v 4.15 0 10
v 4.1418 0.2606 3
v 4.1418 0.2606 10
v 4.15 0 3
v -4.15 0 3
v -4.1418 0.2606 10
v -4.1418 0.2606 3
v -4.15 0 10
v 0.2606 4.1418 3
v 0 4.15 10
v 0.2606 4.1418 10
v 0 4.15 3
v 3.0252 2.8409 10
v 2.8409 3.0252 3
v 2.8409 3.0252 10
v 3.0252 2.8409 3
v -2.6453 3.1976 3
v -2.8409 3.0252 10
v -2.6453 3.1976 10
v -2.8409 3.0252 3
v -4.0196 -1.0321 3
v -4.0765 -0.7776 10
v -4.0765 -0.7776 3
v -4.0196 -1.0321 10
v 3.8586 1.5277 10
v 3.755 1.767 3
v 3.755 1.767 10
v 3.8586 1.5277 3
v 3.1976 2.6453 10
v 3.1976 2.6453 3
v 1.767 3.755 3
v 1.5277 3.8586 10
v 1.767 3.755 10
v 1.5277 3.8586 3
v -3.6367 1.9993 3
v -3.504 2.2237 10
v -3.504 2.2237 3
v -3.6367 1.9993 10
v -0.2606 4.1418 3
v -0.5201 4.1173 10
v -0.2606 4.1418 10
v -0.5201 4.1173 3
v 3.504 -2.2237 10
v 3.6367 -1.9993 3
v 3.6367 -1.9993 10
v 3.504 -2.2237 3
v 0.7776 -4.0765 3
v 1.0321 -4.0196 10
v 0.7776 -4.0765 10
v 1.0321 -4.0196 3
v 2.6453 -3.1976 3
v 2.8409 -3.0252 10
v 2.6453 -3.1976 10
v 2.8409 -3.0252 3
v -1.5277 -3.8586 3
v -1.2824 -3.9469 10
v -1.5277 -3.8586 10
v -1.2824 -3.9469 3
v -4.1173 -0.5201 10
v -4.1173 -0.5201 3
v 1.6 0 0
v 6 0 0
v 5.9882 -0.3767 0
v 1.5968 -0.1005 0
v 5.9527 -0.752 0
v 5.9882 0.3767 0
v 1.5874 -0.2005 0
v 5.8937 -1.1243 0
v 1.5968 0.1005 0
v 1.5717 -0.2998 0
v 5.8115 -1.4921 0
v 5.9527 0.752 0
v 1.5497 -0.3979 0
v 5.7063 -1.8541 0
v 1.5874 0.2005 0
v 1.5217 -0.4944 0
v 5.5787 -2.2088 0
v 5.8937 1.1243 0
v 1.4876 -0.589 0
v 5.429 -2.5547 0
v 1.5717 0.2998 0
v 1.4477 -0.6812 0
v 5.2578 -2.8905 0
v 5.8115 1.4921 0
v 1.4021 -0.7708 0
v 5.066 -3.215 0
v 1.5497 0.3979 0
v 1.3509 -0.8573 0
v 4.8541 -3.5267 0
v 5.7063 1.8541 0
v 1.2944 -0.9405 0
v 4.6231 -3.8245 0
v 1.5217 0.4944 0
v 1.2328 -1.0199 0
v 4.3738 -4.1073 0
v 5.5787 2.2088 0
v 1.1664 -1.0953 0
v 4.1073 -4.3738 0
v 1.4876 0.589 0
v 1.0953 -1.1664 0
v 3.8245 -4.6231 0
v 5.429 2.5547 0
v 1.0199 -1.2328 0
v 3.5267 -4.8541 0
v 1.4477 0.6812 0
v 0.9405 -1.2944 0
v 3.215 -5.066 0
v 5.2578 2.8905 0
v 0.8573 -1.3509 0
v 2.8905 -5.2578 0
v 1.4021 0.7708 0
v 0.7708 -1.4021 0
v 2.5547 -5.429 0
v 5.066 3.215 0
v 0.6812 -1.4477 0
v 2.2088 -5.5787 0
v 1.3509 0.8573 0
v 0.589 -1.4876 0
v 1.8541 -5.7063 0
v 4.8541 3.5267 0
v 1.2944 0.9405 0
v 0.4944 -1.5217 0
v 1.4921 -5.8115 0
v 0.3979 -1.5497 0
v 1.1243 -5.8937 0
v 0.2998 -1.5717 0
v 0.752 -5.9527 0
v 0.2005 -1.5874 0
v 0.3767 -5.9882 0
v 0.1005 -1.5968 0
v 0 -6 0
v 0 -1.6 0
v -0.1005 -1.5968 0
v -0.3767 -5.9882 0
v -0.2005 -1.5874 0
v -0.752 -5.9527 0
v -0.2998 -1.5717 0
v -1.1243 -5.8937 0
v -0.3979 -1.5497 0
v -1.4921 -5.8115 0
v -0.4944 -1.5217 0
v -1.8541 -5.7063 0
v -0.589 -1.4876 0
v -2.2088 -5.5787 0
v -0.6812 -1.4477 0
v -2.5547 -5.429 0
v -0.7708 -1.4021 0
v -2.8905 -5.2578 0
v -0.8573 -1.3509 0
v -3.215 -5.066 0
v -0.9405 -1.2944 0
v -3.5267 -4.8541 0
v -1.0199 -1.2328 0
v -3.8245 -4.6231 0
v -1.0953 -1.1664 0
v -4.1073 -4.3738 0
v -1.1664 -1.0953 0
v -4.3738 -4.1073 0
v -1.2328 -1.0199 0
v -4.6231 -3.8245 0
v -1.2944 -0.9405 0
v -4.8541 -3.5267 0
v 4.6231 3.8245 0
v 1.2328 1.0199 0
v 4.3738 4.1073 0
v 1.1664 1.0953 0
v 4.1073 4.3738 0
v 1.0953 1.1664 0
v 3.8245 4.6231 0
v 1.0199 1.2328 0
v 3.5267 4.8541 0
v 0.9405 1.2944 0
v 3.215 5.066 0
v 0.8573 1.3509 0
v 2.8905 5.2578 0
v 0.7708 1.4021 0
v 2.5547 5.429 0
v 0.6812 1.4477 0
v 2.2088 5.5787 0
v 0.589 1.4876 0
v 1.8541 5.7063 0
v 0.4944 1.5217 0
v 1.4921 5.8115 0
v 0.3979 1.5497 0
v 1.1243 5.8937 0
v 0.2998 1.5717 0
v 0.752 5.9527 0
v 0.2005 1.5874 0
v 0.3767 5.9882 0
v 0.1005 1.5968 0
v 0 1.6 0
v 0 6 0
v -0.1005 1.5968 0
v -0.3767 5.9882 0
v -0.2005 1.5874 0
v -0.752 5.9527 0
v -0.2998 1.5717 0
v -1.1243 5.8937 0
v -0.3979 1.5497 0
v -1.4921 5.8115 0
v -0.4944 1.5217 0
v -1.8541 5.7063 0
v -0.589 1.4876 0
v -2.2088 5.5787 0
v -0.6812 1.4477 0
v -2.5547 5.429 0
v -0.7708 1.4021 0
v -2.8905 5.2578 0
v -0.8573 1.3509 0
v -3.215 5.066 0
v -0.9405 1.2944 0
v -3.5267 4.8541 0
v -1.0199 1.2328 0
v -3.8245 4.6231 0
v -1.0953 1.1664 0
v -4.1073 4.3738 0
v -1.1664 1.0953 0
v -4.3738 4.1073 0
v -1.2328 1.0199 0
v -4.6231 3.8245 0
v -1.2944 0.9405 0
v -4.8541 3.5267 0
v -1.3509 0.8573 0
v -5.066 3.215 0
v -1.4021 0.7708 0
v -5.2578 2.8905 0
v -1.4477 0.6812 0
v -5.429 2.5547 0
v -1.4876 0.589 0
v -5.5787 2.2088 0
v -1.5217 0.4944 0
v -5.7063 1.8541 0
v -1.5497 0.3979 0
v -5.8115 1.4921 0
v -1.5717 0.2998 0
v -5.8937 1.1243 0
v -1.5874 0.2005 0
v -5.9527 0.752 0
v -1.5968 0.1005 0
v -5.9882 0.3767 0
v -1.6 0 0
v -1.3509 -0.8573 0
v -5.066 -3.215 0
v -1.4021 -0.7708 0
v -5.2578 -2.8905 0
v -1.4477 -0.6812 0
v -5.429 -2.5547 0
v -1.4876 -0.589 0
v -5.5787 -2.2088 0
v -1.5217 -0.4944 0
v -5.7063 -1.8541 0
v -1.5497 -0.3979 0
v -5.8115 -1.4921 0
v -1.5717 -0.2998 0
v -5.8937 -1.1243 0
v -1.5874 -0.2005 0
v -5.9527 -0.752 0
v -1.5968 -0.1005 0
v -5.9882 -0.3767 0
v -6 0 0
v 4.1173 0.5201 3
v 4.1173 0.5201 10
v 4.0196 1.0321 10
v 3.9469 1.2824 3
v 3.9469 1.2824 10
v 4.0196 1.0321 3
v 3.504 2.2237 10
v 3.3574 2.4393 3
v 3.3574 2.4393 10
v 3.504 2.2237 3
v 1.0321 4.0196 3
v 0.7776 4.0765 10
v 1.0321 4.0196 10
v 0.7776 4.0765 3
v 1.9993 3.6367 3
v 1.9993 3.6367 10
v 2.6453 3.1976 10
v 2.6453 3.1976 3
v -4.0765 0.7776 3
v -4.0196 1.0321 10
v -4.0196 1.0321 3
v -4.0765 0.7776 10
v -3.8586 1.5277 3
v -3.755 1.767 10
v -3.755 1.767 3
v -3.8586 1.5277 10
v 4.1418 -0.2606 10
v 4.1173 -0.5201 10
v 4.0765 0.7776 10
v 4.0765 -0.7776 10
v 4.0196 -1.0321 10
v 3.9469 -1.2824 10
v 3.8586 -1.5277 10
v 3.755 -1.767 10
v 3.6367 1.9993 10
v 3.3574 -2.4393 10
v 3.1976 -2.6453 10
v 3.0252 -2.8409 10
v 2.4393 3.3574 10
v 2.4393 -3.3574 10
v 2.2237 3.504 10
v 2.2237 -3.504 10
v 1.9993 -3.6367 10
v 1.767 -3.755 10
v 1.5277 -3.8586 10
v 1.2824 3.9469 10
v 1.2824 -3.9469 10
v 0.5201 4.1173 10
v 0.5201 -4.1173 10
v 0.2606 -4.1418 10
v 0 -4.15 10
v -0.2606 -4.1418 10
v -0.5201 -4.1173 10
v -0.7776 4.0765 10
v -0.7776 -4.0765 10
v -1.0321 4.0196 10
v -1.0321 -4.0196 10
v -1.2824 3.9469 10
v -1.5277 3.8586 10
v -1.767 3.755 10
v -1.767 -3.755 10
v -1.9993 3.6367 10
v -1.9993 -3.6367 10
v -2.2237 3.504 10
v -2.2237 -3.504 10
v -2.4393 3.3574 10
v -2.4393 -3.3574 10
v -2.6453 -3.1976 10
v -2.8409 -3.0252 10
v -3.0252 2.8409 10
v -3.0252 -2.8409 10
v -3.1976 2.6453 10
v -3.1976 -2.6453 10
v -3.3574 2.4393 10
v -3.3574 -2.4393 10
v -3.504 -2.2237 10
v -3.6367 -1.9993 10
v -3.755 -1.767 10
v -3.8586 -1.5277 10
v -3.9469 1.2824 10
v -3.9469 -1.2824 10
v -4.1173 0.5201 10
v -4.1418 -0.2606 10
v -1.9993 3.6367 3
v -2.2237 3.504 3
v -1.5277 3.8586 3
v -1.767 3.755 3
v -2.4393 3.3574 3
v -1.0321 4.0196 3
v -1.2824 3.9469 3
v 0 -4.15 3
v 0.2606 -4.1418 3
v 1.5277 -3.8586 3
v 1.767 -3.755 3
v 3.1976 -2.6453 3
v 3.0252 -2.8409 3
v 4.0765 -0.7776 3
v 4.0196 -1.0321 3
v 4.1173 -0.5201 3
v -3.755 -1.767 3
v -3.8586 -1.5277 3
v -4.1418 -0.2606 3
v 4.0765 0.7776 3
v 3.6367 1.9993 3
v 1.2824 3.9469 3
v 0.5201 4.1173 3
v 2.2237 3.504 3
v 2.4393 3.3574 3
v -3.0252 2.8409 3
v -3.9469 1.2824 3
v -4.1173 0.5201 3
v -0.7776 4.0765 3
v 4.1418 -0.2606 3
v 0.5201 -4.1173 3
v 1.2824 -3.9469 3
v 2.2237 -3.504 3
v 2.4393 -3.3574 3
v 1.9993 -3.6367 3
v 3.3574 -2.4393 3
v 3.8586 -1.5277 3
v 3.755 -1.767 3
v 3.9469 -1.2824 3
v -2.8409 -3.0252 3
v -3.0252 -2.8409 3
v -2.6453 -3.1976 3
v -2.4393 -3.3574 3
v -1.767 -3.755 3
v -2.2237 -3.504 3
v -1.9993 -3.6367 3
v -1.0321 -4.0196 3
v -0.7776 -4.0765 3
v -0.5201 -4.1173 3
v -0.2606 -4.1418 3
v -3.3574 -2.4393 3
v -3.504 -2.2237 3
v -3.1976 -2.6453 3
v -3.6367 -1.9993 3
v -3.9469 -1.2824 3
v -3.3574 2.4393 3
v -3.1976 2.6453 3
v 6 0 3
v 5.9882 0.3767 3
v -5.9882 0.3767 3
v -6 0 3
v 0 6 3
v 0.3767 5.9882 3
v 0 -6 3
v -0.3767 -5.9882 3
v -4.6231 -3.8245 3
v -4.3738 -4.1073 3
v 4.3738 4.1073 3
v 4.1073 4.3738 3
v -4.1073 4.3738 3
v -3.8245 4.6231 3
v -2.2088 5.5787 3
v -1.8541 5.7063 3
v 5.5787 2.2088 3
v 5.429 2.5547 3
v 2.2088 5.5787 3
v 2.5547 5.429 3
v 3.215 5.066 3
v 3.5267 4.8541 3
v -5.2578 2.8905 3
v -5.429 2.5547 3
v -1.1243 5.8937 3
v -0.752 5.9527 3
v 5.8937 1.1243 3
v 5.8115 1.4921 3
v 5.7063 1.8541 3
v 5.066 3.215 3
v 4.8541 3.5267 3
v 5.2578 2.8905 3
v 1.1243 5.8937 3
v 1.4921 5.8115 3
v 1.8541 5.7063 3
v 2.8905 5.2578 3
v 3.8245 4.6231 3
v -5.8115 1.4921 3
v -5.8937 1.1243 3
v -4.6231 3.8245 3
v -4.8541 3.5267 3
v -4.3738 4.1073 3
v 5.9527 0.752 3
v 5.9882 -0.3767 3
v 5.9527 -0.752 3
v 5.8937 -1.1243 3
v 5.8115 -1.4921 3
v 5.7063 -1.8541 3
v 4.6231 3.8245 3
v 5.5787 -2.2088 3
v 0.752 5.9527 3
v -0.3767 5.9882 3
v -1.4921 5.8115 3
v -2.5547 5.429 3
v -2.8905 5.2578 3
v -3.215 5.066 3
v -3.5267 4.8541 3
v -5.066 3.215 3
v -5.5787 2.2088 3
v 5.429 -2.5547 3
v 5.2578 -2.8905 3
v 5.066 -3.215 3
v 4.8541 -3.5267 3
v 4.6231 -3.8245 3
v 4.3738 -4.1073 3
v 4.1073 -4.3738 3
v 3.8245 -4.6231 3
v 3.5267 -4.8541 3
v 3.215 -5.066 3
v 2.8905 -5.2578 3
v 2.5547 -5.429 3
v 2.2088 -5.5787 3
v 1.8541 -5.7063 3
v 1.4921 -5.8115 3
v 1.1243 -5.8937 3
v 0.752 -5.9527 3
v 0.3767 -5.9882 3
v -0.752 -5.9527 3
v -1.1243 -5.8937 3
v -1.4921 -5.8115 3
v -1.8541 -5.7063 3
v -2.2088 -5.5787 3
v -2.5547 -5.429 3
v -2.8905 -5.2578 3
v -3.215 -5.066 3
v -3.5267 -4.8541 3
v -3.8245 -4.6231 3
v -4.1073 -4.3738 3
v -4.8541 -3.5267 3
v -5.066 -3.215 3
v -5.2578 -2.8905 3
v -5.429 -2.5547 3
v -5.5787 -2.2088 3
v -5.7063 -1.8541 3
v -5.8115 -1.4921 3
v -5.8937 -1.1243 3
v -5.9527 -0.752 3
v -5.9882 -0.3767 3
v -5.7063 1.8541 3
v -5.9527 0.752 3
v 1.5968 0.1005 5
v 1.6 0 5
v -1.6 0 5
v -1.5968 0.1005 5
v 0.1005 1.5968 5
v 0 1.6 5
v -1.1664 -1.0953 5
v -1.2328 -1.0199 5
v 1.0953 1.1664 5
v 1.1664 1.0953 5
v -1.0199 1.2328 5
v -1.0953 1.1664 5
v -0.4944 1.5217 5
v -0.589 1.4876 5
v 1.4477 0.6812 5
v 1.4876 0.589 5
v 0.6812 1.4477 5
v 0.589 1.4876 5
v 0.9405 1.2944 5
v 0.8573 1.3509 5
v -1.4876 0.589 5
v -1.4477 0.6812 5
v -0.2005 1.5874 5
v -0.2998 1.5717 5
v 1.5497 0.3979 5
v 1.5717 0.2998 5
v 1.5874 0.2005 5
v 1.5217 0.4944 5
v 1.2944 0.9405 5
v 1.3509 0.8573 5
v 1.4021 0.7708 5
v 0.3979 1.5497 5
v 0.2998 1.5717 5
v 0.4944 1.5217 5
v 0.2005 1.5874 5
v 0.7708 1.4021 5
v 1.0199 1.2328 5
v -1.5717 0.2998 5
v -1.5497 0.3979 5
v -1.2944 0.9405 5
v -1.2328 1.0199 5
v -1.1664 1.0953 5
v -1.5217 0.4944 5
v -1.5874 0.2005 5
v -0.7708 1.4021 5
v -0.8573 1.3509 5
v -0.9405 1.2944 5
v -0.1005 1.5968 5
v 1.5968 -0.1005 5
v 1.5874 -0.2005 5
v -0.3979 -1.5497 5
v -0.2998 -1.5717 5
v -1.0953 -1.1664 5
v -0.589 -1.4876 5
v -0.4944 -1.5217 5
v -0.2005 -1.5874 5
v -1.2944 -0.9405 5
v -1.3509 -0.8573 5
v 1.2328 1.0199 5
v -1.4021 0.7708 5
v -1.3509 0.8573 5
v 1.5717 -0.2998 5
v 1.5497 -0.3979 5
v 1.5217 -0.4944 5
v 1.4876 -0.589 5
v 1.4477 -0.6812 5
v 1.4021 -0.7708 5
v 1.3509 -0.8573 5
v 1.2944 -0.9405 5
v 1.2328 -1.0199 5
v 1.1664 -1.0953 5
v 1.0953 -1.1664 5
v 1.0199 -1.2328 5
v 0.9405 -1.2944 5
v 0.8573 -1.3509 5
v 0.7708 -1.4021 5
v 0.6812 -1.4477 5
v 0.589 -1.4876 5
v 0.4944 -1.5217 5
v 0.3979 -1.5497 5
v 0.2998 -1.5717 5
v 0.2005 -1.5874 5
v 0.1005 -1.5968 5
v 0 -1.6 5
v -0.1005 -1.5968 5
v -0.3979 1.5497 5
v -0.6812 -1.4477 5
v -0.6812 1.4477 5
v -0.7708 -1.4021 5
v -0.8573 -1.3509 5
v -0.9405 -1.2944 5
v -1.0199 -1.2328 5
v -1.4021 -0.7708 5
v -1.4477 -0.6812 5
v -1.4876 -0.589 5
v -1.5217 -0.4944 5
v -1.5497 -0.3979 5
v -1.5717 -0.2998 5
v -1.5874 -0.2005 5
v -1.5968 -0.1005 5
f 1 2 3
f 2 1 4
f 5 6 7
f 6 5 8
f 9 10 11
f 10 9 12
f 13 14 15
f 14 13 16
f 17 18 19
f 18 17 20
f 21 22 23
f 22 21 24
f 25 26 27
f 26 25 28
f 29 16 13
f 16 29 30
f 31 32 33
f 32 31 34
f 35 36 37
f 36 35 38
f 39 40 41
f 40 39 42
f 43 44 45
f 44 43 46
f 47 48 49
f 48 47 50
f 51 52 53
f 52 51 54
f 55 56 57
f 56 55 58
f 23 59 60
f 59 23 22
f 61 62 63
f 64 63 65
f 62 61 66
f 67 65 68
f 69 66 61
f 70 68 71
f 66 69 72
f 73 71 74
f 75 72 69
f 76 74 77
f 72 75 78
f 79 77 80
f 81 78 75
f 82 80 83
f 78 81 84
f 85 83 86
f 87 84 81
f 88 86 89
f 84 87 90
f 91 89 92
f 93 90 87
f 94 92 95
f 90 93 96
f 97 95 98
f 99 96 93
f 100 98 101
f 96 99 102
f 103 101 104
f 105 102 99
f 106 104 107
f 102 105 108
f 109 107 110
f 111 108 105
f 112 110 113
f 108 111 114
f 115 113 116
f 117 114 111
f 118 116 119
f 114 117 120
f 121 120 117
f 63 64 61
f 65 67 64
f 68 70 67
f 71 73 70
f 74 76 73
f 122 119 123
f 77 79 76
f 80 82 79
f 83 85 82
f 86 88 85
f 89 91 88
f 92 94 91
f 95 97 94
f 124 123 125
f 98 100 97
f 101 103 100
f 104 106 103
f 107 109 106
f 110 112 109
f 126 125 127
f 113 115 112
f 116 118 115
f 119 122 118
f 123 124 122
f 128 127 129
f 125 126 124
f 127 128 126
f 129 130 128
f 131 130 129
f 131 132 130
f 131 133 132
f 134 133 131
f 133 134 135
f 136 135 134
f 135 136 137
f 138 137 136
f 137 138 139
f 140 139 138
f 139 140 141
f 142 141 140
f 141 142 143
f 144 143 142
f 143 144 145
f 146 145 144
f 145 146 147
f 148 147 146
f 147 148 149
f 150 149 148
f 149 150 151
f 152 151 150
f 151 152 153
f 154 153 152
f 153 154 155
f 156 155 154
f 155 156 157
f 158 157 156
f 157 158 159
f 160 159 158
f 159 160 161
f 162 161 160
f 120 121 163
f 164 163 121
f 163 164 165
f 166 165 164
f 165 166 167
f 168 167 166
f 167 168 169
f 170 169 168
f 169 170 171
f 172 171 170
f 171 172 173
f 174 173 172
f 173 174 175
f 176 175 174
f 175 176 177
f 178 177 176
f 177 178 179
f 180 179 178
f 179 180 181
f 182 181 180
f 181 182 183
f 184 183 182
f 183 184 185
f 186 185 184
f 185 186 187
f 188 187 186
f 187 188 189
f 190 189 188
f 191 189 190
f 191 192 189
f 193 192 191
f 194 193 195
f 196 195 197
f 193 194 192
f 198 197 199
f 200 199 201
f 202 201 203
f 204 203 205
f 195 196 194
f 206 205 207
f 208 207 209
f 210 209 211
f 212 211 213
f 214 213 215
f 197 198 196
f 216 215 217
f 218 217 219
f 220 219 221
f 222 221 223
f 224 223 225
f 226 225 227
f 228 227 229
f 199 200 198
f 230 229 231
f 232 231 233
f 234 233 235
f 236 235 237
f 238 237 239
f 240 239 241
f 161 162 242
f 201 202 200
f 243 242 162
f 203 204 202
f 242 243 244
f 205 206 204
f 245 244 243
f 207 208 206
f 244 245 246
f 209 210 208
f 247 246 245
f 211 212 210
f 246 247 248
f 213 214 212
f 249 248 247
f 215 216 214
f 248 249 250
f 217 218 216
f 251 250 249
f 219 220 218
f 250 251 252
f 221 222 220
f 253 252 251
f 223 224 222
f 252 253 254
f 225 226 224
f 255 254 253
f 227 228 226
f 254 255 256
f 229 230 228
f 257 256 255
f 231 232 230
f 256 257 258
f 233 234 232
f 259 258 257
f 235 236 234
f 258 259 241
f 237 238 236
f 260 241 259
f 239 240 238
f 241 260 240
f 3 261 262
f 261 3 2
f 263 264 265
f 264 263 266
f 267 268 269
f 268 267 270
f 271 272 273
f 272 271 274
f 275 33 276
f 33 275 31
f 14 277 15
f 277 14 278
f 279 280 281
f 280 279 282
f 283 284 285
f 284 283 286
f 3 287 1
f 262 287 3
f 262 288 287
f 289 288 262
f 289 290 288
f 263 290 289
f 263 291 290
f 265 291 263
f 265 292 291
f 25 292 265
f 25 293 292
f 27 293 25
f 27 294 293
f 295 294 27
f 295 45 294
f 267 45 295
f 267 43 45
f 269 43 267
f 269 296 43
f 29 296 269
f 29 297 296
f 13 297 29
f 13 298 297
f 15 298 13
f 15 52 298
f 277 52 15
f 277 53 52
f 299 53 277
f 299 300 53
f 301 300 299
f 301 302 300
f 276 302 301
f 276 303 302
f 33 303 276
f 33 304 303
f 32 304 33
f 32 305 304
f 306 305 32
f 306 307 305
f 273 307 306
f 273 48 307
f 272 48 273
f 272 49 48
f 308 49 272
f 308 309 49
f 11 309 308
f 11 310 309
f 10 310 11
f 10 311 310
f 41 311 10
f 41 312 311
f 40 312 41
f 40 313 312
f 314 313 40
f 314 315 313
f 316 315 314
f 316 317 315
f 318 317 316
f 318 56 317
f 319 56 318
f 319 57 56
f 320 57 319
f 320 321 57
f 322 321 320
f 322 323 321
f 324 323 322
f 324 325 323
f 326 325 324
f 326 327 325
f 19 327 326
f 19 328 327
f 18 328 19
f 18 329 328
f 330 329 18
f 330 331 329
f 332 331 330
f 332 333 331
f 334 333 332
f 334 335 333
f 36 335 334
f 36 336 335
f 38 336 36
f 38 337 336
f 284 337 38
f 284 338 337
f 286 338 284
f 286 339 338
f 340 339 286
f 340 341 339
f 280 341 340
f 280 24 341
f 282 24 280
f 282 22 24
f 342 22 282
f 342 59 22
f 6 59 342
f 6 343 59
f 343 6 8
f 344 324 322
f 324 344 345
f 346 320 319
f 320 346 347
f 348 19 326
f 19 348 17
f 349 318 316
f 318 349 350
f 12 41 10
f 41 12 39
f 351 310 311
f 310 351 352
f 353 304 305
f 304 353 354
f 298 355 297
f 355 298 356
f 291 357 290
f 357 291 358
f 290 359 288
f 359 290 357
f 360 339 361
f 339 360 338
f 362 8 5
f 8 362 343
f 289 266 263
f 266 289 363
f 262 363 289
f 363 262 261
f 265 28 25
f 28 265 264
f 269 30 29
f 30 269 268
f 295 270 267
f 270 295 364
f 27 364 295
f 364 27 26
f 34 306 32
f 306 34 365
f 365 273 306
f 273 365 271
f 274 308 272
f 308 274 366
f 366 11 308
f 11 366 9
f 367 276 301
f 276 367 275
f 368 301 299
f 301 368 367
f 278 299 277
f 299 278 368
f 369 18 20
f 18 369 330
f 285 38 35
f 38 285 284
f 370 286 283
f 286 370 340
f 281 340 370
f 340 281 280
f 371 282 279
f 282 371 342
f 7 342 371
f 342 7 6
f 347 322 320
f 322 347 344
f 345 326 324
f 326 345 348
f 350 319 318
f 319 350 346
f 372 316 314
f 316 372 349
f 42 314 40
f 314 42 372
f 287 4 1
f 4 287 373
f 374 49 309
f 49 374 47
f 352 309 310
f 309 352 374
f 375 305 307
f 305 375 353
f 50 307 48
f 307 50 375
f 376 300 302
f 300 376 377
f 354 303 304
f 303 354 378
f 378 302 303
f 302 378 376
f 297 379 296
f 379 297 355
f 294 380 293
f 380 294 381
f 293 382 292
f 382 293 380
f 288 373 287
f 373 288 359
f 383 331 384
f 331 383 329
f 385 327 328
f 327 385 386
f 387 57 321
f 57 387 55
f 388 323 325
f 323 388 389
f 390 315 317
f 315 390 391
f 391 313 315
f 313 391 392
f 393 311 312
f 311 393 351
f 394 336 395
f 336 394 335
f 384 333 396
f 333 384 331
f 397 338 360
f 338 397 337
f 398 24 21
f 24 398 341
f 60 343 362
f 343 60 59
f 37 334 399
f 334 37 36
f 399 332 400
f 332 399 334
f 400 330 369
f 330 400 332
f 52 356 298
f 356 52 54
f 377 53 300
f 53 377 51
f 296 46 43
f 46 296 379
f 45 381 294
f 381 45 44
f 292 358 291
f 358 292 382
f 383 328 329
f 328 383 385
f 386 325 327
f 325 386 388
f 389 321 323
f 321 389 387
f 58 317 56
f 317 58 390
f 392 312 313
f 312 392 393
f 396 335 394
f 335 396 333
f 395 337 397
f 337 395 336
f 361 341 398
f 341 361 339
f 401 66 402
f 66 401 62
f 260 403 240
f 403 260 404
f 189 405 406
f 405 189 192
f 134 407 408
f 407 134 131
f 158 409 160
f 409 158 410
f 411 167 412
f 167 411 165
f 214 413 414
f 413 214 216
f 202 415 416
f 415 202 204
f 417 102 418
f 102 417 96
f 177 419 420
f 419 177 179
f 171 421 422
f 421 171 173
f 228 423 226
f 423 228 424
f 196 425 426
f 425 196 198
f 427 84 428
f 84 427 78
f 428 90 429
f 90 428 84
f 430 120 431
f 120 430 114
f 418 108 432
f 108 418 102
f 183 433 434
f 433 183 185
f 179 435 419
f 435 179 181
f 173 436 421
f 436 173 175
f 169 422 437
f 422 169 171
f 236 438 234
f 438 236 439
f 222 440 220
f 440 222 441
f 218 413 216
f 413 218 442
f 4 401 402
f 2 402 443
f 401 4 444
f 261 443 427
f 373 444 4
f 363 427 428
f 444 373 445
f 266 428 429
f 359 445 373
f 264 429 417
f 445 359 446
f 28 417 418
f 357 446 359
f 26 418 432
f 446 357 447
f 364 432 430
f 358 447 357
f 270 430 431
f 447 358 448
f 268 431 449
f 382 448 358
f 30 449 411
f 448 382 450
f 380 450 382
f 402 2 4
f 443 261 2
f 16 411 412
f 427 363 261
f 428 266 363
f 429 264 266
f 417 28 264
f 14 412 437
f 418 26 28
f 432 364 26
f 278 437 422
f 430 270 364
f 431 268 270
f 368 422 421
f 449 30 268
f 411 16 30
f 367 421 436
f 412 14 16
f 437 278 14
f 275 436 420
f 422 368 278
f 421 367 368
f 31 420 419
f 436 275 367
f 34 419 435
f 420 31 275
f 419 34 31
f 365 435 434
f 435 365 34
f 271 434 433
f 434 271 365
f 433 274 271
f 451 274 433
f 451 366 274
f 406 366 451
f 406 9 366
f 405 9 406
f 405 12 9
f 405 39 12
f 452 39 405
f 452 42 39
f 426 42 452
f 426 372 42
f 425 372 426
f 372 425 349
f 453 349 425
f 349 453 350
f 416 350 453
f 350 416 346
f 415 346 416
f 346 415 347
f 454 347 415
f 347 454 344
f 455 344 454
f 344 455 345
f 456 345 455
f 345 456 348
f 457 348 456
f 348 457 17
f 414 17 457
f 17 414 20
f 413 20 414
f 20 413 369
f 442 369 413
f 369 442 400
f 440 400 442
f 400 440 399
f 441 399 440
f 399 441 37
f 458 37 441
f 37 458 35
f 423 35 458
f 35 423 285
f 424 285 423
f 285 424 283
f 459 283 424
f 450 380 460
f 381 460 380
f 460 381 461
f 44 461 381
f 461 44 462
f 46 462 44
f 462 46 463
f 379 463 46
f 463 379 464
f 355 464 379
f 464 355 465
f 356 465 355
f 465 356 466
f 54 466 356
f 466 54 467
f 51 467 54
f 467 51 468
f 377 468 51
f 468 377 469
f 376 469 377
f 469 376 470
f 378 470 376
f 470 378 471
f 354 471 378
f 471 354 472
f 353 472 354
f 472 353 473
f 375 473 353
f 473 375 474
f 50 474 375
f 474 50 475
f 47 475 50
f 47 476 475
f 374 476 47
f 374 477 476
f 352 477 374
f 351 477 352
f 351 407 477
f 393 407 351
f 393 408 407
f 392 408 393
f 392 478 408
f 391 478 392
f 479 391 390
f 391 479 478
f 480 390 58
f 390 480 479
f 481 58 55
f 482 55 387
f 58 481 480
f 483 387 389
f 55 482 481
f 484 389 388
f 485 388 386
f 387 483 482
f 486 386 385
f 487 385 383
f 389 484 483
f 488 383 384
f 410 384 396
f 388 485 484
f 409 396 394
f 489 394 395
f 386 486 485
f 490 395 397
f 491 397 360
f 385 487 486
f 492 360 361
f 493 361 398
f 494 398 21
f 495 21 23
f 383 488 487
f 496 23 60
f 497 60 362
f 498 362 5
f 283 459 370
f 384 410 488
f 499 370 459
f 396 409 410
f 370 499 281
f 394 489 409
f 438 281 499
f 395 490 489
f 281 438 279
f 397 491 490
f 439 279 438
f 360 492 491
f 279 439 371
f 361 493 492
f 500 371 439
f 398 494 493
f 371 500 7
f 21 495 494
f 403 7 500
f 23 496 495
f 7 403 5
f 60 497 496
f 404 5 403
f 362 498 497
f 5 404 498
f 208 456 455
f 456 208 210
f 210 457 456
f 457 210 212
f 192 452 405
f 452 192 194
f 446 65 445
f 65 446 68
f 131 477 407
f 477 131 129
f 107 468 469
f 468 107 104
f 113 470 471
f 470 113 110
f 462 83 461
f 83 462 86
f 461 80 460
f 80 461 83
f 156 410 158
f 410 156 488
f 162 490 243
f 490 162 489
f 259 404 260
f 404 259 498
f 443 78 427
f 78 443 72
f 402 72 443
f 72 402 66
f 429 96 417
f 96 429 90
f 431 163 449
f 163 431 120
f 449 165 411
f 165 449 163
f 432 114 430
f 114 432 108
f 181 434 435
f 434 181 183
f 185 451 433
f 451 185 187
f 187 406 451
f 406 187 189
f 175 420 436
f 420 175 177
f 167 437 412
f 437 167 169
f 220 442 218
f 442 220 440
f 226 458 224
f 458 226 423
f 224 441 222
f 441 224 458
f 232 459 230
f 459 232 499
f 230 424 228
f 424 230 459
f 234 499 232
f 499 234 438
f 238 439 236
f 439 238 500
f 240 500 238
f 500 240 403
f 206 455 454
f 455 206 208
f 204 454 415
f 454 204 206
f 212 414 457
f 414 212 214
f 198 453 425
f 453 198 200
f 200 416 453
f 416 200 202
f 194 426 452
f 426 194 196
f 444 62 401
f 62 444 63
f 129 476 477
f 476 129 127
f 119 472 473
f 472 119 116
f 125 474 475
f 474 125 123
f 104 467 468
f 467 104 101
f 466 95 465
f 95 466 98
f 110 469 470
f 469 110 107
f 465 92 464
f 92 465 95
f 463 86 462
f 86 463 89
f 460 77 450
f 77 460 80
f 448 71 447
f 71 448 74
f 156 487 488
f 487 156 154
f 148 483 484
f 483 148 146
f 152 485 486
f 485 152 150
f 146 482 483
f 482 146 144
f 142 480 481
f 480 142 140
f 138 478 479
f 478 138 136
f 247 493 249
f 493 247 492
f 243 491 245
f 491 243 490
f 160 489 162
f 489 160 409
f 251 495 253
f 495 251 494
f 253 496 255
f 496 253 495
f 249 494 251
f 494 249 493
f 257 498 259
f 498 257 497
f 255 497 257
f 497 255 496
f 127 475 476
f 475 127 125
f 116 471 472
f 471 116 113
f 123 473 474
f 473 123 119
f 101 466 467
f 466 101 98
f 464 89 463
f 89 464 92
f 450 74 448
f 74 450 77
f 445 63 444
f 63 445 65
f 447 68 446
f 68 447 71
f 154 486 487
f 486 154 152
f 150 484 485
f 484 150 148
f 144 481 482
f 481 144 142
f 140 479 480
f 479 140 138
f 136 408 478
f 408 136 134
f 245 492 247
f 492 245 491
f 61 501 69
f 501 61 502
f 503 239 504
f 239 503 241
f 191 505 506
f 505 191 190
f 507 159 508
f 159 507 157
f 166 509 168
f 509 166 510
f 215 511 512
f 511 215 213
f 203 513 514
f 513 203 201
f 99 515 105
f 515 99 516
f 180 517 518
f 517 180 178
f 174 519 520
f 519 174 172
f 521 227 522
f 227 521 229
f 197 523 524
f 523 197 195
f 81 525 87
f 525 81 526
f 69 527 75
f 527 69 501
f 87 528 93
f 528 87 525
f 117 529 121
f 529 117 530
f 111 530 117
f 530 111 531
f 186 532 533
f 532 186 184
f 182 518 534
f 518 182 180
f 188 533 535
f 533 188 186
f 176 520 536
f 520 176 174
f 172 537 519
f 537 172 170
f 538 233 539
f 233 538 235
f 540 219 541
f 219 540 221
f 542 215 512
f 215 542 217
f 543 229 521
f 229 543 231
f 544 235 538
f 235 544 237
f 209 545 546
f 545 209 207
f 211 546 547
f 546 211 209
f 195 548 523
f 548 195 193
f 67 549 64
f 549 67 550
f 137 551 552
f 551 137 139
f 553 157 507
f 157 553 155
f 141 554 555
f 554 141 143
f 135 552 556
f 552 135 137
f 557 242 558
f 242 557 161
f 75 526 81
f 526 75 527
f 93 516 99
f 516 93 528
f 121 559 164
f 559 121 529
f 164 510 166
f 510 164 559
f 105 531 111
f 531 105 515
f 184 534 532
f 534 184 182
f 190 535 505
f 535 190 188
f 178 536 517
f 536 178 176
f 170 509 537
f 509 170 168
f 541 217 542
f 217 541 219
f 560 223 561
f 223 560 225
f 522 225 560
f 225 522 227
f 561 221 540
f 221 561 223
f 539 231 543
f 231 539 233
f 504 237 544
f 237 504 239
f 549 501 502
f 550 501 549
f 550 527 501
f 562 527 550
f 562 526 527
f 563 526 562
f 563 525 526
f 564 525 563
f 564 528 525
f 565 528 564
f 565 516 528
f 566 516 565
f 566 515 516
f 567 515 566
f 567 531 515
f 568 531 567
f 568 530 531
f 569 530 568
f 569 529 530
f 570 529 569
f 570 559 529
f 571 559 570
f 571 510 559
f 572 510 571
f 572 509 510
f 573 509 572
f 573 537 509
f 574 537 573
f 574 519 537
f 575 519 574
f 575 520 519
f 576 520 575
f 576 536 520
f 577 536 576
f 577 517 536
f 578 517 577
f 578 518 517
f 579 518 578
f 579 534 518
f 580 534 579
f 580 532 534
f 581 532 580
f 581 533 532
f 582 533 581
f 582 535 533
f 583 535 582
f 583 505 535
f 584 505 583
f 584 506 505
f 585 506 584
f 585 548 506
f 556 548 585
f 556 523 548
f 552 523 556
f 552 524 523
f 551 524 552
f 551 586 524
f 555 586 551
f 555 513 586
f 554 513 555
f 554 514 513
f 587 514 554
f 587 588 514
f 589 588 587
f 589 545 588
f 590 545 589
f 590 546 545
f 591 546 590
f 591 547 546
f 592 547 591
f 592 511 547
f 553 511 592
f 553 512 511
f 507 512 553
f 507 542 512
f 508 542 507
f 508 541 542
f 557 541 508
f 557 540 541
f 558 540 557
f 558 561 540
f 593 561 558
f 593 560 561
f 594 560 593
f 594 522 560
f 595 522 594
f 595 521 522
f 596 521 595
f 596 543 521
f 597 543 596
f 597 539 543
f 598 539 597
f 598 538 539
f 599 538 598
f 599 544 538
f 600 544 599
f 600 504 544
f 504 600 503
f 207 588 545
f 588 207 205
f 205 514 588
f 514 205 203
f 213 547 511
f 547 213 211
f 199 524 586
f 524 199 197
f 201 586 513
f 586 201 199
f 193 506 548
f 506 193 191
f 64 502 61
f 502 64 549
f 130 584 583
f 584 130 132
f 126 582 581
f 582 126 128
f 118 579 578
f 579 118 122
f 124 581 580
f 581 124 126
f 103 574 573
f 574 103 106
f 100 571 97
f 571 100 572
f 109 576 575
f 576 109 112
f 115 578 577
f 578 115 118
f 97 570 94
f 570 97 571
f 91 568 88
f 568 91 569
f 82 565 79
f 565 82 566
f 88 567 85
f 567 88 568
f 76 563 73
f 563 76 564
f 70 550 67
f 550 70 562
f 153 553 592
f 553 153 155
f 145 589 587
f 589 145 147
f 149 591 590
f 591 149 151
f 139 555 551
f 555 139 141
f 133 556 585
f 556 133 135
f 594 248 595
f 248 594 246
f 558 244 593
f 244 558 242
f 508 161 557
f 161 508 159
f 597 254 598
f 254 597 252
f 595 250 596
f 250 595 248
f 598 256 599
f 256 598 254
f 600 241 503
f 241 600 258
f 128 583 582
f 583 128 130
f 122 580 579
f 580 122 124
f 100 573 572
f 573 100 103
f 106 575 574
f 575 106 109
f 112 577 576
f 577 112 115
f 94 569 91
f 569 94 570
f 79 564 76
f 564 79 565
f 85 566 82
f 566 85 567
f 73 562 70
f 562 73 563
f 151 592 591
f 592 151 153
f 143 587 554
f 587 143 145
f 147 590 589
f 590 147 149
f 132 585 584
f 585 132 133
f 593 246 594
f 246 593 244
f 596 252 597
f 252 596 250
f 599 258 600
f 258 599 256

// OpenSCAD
$fn=100;

difference(){                                   //Stock plug
union(){
cylinder (d=8.3, h=10);
cylinder (d=12, h=3);
}
cylinder (d=3.2, h=5);
}
